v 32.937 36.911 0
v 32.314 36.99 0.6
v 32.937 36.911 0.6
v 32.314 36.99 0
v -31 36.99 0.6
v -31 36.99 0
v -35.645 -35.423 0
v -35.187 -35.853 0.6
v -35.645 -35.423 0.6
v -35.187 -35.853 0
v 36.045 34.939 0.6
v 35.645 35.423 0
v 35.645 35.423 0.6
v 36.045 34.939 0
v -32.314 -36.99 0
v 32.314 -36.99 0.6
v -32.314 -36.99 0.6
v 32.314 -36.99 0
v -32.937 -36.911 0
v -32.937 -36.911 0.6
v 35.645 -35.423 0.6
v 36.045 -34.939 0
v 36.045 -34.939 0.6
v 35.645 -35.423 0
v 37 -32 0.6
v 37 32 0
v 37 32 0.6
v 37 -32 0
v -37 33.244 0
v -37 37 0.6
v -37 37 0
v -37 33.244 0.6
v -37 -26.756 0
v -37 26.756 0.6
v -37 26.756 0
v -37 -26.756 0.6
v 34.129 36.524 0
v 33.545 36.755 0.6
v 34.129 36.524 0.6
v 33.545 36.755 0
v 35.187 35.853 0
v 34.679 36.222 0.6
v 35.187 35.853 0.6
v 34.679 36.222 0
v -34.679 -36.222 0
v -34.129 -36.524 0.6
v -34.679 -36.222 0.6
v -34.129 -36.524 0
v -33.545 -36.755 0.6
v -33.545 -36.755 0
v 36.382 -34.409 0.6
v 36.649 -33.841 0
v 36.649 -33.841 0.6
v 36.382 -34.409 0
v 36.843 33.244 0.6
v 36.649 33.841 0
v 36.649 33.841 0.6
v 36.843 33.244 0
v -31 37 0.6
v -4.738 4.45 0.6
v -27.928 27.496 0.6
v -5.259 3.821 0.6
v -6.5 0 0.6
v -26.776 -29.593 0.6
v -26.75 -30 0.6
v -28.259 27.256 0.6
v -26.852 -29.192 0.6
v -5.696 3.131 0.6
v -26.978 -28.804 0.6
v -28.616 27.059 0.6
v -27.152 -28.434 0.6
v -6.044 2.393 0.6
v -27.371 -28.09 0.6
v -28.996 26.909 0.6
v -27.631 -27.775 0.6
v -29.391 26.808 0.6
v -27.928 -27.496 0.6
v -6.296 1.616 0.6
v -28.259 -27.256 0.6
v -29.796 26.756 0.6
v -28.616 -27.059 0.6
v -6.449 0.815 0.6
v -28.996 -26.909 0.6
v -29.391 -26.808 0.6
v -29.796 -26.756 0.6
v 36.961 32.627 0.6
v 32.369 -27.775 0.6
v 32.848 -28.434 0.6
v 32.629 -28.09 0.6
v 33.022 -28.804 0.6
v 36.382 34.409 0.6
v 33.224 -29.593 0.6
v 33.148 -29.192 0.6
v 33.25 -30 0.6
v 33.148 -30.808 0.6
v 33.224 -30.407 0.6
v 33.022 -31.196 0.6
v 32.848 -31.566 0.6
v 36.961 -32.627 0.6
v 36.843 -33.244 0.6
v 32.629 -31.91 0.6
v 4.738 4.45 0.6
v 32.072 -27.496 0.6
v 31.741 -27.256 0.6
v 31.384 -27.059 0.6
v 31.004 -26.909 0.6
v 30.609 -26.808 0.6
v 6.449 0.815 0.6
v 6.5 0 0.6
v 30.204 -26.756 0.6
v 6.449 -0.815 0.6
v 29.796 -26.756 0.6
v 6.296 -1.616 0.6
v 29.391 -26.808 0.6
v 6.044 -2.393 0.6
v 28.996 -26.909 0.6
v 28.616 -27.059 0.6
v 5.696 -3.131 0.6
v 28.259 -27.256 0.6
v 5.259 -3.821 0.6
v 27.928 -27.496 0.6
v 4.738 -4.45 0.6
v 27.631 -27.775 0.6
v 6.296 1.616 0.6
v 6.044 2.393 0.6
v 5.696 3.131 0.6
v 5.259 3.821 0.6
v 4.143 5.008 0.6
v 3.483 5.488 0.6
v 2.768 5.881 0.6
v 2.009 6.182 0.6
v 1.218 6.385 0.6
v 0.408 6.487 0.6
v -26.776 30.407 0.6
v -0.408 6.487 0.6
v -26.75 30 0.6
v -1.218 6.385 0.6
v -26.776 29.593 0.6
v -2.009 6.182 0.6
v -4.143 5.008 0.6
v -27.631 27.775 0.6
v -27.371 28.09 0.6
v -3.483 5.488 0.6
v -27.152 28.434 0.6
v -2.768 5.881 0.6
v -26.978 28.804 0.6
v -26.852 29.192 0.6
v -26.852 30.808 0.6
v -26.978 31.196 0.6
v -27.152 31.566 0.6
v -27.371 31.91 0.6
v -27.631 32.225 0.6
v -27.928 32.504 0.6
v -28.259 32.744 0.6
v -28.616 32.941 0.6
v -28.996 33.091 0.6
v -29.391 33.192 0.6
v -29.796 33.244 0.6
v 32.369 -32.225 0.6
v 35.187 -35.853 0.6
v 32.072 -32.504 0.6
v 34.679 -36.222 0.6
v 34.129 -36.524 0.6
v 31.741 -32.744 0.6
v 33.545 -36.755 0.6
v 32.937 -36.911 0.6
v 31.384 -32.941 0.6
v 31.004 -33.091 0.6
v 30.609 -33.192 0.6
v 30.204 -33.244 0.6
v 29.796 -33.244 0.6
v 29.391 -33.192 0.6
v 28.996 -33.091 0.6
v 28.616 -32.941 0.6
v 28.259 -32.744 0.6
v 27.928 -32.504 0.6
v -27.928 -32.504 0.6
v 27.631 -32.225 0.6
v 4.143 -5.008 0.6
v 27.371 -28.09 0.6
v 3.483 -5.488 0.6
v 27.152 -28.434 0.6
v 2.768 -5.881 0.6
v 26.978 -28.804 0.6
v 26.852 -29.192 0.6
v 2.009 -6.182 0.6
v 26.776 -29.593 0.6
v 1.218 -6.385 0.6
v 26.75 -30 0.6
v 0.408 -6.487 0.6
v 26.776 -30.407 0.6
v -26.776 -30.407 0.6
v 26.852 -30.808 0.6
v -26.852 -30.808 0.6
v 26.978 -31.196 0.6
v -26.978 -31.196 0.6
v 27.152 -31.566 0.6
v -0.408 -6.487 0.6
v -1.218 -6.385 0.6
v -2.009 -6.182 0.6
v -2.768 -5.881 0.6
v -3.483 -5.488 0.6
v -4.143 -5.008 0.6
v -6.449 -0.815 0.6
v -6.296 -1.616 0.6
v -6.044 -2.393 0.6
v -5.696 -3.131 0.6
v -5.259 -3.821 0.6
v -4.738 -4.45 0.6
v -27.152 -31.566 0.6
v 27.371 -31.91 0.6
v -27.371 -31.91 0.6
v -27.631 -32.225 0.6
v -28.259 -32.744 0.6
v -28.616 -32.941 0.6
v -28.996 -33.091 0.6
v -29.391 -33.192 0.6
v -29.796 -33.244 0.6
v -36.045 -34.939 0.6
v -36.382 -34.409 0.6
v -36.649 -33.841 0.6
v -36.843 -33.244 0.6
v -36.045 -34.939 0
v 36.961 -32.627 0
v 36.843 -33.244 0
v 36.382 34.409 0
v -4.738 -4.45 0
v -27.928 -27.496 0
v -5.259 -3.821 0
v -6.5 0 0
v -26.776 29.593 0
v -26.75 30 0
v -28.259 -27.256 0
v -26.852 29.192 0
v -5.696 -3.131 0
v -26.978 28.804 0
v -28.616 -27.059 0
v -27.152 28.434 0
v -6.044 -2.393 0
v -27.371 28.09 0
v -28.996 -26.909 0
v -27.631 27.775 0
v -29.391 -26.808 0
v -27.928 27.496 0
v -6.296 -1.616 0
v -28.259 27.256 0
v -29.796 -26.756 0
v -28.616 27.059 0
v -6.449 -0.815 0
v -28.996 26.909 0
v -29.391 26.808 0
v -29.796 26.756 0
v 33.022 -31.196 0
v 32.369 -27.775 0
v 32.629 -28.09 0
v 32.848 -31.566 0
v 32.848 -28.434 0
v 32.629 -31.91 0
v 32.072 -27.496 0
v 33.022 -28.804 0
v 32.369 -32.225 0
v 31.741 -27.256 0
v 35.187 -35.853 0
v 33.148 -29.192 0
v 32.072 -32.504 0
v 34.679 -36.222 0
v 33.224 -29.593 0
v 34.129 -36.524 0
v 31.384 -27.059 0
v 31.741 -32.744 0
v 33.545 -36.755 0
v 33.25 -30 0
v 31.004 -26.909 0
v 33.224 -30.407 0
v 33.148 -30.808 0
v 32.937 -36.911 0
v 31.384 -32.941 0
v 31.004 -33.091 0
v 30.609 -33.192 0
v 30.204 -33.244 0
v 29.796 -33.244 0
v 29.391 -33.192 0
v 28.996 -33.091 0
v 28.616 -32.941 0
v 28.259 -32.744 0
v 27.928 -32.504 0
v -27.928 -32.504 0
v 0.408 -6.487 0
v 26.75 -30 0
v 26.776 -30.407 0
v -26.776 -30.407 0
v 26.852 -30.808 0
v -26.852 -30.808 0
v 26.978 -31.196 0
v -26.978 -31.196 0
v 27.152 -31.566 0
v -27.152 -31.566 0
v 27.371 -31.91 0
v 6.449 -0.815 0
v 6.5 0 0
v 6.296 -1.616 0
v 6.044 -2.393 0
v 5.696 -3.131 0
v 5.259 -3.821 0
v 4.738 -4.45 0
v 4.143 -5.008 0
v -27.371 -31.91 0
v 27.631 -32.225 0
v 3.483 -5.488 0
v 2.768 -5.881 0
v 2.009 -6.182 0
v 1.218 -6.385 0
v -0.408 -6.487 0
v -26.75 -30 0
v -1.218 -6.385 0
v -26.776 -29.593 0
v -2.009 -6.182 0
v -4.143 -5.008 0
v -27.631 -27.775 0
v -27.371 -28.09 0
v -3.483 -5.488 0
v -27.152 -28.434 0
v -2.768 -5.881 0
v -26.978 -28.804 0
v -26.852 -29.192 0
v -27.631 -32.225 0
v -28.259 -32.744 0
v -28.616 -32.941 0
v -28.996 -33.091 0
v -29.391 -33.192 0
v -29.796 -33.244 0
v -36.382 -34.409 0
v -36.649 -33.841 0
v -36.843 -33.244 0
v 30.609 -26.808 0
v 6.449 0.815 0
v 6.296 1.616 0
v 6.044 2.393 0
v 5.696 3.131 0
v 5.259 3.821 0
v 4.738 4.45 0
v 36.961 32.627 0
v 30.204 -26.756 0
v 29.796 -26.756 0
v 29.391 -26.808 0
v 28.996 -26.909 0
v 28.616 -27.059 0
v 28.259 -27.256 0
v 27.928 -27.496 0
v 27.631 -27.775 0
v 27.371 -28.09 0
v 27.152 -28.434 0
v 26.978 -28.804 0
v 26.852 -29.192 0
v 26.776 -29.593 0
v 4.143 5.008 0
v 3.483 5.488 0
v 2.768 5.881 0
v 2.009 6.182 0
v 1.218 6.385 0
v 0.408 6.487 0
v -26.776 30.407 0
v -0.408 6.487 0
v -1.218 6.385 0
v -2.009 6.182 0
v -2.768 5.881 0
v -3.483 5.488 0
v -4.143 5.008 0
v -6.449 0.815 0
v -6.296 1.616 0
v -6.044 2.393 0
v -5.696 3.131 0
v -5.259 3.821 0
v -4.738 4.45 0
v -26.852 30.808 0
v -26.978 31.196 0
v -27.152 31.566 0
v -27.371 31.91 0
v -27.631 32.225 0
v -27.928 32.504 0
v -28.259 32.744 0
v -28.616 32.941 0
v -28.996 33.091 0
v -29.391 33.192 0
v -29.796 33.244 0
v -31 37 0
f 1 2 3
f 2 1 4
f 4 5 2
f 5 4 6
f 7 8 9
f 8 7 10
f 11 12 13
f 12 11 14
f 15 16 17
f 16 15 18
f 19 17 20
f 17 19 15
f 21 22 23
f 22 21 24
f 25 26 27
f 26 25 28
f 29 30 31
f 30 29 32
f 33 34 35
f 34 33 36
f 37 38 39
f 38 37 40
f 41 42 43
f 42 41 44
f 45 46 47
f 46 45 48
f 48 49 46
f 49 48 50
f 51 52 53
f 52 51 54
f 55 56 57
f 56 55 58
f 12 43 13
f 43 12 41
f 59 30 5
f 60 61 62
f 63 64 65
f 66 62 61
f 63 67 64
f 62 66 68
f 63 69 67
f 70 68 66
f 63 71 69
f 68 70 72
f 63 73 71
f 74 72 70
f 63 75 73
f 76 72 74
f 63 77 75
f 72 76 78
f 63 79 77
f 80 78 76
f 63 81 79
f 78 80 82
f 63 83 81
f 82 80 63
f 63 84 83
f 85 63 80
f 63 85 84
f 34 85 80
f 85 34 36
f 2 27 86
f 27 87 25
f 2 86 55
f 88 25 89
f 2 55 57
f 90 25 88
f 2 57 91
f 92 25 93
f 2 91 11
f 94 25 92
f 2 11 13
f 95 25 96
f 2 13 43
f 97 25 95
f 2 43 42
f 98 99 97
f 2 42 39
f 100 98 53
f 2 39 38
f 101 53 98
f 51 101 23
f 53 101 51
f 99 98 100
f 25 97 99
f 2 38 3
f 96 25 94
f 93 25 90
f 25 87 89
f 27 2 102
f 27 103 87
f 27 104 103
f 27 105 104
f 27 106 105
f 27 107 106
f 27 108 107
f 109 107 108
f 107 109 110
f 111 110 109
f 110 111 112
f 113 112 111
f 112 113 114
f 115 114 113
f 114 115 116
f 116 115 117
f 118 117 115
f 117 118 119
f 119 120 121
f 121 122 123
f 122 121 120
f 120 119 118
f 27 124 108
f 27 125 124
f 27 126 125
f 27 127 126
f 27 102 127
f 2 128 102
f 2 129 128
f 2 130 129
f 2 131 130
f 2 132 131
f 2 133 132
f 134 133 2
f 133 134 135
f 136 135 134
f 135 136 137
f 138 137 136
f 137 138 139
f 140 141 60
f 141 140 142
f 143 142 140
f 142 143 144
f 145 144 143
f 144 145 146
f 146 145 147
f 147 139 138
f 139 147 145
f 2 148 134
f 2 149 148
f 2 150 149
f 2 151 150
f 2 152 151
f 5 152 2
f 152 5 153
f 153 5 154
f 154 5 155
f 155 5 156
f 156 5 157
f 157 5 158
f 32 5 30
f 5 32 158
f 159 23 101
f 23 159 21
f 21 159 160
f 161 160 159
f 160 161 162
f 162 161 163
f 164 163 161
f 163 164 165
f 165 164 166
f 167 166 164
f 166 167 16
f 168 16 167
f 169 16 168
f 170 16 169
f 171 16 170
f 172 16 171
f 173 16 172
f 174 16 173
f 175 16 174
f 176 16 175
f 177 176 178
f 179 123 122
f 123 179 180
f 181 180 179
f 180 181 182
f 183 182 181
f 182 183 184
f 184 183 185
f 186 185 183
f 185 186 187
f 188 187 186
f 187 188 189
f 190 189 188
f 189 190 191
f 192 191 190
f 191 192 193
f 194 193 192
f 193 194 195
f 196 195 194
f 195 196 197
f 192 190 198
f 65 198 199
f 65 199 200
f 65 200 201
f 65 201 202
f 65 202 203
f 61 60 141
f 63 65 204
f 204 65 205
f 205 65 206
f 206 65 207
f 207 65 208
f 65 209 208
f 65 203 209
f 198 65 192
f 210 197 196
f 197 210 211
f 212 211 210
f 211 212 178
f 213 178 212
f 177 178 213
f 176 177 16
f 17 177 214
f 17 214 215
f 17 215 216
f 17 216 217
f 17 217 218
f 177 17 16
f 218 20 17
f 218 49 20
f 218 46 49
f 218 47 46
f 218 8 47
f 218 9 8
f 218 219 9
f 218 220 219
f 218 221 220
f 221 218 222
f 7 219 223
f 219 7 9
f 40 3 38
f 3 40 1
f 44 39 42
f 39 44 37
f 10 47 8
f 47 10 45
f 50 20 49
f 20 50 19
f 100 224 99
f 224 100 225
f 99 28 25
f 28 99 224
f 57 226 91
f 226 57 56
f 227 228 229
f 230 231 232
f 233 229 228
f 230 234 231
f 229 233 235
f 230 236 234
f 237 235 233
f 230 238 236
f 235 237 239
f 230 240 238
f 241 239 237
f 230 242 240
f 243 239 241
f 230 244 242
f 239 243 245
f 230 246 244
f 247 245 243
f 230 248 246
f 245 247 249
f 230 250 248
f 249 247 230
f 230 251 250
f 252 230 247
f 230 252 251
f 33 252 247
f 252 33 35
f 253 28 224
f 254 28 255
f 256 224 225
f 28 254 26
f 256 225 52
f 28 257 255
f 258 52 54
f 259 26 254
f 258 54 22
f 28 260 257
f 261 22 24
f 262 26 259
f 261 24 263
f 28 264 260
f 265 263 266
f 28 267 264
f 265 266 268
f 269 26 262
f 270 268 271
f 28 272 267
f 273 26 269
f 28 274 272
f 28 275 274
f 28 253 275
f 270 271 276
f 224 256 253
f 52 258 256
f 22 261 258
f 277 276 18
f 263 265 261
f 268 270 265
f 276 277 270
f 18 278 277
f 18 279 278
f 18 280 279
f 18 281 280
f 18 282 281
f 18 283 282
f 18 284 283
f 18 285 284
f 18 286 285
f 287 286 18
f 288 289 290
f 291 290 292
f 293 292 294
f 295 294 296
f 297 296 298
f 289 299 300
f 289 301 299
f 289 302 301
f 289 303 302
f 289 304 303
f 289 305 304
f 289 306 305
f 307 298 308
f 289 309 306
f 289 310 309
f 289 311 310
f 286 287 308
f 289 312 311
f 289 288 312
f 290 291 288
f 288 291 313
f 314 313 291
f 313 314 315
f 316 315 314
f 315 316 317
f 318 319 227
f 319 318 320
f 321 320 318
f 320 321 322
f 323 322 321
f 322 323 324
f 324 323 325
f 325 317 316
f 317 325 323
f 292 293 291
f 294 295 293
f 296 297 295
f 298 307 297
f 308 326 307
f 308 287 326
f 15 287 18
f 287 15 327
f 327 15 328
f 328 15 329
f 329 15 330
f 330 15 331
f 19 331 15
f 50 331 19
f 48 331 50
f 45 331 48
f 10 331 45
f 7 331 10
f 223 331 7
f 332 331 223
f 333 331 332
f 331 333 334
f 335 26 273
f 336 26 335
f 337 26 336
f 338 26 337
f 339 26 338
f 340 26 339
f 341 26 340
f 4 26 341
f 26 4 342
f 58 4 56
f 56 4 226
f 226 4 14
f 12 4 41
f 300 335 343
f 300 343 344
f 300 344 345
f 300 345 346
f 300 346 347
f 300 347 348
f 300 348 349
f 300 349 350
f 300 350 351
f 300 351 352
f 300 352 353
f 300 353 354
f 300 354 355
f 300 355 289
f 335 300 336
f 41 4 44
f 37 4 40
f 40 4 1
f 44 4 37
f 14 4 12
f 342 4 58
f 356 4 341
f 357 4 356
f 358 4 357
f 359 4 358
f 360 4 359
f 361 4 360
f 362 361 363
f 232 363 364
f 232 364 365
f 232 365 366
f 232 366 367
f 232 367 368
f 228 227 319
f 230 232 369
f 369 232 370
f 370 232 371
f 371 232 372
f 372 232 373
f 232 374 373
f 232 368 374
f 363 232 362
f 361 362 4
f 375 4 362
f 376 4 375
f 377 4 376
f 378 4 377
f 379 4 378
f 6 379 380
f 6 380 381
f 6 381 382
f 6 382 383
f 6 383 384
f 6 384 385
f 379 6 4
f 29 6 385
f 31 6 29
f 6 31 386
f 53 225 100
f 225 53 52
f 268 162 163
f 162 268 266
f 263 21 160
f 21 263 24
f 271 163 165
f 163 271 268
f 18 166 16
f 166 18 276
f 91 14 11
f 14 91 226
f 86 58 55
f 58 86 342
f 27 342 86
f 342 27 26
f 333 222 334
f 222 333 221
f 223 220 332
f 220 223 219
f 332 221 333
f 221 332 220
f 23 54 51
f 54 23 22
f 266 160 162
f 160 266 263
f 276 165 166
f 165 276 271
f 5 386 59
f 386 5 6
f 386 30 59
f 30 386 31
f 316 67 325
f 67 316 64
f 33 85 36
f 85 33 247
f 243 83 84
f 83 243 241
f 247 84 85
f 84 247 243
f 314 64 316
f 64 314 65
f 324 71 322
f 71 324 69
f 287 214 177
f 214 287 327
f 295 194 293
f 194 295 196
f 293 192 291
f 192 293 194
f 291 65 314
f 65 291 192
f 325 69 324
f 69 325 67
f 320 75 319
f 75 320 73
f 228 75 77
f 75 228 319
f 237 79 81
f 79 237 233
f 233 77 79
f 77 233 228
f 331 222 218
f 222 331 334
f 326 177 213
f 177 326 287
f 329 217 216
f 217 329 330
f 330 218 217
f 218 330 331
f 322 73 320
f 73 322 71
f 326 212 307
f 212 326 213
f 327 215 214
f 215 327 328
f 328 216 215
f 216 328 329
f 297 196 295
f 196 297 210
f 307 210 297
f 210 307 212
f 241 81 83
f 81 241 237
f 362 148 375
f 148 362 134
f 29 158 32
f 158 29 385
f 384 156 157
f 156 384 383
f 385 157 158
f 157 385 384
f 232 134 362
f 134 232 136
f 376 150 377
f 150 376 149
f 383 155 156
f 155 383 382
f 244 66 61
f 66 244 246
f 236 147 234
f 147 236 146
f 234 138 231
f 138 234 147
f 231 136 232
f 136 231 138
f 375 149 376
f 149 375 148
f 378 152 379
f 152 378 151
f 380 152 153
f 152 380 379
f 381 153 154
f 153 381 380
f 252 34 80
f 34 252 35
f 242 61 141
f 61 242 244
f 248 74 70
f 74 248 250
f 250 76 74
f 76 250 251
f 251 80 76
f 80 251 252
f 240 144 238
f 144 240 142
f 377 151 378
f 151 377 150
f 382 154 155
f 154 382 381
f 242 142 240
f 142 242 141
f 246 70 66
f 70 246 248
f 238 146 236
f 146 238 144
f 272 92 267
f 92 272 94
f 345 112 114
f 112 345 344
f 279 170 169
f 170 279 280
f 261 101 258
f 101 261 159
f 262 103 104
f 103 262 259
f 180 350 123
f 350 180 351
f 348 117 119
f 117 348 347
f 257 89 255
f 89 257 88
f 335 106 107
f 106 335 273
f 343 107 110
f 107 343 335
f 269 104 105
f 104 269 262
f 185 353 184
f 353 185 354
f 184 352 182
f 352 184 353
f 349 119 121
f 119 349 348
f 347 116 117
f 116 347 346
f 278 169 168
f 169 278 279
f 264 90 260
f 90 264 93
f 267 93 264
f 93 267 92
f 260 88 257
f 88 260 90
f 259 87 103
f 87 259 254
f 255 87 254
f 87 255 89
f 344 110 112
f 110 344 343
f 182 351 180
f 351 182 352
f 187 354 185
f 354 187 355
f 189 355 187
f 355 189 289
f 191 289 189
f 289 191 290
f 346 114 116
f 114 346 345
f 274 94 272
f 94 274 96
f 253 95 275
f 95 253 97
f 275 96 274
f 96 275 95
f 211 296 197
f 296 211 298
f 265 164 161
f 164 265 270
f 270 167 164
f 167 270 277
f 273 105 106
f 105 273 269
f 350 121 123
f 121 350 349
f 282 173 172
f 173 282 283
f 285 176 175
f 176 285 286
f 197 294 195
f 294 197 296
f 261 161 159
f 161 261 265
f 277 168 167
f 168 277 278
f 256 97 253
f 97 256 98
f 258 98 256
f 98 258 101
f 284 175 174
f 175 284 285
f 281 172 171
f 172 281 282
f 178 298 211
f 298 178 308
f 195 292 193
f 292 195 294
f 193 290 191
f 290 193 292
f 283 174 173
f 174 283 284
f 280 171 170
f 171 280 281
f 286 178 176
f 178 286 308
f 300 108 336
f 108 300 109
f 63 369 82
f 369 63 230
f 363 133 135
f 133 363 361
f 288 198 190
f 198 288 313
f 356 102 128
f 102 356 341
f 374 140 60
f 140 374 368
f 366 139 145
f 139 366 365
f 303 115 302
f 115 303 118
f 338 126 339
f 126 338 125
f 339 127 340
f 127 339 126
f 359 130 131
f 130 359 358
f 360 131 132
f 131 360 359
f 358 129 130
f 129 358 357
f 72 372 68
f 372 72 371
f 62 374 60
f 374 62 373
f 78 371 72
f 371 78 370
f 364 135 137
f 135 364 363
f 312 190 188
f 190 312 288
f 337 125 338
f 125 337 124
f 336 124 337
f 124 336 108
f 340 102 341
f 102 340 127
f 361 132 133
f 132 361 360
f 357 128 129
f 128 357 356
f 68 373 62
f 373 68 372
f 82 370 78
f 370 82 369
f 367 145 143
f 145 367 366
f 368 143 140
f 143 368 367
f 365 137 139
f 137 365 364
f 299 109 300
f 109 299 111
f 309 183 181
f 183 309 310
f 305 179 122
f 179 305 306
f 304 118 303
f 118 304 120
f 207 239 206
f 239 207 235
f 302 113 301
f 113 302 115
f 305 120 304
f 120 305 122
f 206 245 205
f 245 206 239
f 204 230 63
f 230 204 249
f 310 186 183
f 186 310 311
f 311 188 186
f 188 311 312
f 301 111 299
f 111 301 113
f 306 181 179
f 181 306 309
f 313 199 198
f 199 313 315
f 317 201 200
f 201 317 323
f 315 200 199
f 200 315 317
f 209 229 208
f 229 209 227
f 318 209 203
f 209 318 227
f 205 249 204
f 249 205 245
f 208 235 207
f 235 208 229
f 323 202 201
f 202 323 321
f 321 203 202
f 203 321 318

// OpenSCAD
$fn = 50;


difference() {
	union() {
		translate(v = [0, 0, 0]) {
			rotate(a = [0, 0, 0]) {
				hull() {
					translate(v = [-32.0000000000, 32.0000000000, 0]) {
						rotate(a = [0, 0, 0]) {
							translate(v = [0, 0, 0]) {
								rotate(a = [0, 0, 0]) {
									cylinder(h = 0.6000000000, r = 5);
								}
							}
						}
					}
					translate(v = [32.0000000000, 32.0000000000, 0]) {
						rotate(a = [0, 0, 0]) {
							translate(v = [0, 0, 0]) {
								rotate(a = [0, 0, 0]) {
									cylinder(h = 0.6000000000, r = 5);
								}
							}
						}
					}
					translate(v = [-32.0000000000, -32.0000000000, 0]) {
						rotate(a = [0, 0, 0]) {
							translate(v = [0, 0, 0]) {
								rotate(a = [0, 0, 0]) {
									cylinder(h = 0.6000000000, r = 5);
								}
							}
						}
					}
					translate(v = [32.0000000000, -32.0000000000, 0]) {
						rotate(a = [0, 0, 0]) {
							translate(v = [0, 0, 0]) {
								rotate(a = [0, 0, 0]) {
									cylinder(h = 0.6000000000, r = 5);
								}
							}
						}
					}
				}
			}
		}
		translate(v = [-37.0000000000, 31.0000000000, 0]) {
			rotate(a = [0, 0, 0]) {
				cube(size = [6, 6, 0.6000000000]);
			}
		}
	}
	union() {
		translate(v = [-37.5000000000, -30.0000000000, -125]) {
			rotate(a = [0, 0, 0]) {
				hull() {
					translate(v = [7.5000000000, 0, 0]) {
						rotate(a = [0, 0, 0]) {
							translate(v = [0, 0, 0]) {
								rotate(a = [0, 0, 0]) {
									cylinder(h = 250, r = 3.2500000000);
								}
							}
						}
					}
					translate(v = [-7.5000000000, 0, 0]) {
						rotate(a = [0, 0, 0]) {
							translate(v = [0, 0, 0]) {
								rotate(a = [0, 0, 0]) {
									cylinder(h = 250, r = 3.2500000000);
								}
							}
						}
					}
				}
			}
		}
		translate(v = [-37.5000000000, 30.0000000000, -125]) {
			rotate(a = [0, 0, 0]) {
				hull() {
					translate(v = [7.5000000000, 0, 0]) {
						rotate(a = [0, 0, 0]) {
							translate(v = [0, 0, 0]) {
								rotate(a = [0, 0, 0]) {
									cylinder(h = 250, r = 3.2500000000);
								}
							}
						}
					}
					translate(v = [-7.5000000000, 0, 0]) {
						rotate(a = [0, 0, 0]) {
							translate(v = [0, 0, 0]) {
								rotate(a = [0, 0, 0]) {
									cylinder(h = 250, r = 3.2500000000);
								}
							}
						}
					}
				}
			}
		}
		translate(v = [30.0000000000, -30.0000000000, -125.0000000000]) {
			rotate(a = [0, 0, 0]) {
				cylinder(h = 250, r = 3.2500000000);
			}
		}
		translate(v = [0, 0, 0.0000000000]) {
			rotate(a = [0, 0, 0]) {
				cylinder(h = 0.6000000000, r = 6.5000000000);
			}
		}
	}
}
